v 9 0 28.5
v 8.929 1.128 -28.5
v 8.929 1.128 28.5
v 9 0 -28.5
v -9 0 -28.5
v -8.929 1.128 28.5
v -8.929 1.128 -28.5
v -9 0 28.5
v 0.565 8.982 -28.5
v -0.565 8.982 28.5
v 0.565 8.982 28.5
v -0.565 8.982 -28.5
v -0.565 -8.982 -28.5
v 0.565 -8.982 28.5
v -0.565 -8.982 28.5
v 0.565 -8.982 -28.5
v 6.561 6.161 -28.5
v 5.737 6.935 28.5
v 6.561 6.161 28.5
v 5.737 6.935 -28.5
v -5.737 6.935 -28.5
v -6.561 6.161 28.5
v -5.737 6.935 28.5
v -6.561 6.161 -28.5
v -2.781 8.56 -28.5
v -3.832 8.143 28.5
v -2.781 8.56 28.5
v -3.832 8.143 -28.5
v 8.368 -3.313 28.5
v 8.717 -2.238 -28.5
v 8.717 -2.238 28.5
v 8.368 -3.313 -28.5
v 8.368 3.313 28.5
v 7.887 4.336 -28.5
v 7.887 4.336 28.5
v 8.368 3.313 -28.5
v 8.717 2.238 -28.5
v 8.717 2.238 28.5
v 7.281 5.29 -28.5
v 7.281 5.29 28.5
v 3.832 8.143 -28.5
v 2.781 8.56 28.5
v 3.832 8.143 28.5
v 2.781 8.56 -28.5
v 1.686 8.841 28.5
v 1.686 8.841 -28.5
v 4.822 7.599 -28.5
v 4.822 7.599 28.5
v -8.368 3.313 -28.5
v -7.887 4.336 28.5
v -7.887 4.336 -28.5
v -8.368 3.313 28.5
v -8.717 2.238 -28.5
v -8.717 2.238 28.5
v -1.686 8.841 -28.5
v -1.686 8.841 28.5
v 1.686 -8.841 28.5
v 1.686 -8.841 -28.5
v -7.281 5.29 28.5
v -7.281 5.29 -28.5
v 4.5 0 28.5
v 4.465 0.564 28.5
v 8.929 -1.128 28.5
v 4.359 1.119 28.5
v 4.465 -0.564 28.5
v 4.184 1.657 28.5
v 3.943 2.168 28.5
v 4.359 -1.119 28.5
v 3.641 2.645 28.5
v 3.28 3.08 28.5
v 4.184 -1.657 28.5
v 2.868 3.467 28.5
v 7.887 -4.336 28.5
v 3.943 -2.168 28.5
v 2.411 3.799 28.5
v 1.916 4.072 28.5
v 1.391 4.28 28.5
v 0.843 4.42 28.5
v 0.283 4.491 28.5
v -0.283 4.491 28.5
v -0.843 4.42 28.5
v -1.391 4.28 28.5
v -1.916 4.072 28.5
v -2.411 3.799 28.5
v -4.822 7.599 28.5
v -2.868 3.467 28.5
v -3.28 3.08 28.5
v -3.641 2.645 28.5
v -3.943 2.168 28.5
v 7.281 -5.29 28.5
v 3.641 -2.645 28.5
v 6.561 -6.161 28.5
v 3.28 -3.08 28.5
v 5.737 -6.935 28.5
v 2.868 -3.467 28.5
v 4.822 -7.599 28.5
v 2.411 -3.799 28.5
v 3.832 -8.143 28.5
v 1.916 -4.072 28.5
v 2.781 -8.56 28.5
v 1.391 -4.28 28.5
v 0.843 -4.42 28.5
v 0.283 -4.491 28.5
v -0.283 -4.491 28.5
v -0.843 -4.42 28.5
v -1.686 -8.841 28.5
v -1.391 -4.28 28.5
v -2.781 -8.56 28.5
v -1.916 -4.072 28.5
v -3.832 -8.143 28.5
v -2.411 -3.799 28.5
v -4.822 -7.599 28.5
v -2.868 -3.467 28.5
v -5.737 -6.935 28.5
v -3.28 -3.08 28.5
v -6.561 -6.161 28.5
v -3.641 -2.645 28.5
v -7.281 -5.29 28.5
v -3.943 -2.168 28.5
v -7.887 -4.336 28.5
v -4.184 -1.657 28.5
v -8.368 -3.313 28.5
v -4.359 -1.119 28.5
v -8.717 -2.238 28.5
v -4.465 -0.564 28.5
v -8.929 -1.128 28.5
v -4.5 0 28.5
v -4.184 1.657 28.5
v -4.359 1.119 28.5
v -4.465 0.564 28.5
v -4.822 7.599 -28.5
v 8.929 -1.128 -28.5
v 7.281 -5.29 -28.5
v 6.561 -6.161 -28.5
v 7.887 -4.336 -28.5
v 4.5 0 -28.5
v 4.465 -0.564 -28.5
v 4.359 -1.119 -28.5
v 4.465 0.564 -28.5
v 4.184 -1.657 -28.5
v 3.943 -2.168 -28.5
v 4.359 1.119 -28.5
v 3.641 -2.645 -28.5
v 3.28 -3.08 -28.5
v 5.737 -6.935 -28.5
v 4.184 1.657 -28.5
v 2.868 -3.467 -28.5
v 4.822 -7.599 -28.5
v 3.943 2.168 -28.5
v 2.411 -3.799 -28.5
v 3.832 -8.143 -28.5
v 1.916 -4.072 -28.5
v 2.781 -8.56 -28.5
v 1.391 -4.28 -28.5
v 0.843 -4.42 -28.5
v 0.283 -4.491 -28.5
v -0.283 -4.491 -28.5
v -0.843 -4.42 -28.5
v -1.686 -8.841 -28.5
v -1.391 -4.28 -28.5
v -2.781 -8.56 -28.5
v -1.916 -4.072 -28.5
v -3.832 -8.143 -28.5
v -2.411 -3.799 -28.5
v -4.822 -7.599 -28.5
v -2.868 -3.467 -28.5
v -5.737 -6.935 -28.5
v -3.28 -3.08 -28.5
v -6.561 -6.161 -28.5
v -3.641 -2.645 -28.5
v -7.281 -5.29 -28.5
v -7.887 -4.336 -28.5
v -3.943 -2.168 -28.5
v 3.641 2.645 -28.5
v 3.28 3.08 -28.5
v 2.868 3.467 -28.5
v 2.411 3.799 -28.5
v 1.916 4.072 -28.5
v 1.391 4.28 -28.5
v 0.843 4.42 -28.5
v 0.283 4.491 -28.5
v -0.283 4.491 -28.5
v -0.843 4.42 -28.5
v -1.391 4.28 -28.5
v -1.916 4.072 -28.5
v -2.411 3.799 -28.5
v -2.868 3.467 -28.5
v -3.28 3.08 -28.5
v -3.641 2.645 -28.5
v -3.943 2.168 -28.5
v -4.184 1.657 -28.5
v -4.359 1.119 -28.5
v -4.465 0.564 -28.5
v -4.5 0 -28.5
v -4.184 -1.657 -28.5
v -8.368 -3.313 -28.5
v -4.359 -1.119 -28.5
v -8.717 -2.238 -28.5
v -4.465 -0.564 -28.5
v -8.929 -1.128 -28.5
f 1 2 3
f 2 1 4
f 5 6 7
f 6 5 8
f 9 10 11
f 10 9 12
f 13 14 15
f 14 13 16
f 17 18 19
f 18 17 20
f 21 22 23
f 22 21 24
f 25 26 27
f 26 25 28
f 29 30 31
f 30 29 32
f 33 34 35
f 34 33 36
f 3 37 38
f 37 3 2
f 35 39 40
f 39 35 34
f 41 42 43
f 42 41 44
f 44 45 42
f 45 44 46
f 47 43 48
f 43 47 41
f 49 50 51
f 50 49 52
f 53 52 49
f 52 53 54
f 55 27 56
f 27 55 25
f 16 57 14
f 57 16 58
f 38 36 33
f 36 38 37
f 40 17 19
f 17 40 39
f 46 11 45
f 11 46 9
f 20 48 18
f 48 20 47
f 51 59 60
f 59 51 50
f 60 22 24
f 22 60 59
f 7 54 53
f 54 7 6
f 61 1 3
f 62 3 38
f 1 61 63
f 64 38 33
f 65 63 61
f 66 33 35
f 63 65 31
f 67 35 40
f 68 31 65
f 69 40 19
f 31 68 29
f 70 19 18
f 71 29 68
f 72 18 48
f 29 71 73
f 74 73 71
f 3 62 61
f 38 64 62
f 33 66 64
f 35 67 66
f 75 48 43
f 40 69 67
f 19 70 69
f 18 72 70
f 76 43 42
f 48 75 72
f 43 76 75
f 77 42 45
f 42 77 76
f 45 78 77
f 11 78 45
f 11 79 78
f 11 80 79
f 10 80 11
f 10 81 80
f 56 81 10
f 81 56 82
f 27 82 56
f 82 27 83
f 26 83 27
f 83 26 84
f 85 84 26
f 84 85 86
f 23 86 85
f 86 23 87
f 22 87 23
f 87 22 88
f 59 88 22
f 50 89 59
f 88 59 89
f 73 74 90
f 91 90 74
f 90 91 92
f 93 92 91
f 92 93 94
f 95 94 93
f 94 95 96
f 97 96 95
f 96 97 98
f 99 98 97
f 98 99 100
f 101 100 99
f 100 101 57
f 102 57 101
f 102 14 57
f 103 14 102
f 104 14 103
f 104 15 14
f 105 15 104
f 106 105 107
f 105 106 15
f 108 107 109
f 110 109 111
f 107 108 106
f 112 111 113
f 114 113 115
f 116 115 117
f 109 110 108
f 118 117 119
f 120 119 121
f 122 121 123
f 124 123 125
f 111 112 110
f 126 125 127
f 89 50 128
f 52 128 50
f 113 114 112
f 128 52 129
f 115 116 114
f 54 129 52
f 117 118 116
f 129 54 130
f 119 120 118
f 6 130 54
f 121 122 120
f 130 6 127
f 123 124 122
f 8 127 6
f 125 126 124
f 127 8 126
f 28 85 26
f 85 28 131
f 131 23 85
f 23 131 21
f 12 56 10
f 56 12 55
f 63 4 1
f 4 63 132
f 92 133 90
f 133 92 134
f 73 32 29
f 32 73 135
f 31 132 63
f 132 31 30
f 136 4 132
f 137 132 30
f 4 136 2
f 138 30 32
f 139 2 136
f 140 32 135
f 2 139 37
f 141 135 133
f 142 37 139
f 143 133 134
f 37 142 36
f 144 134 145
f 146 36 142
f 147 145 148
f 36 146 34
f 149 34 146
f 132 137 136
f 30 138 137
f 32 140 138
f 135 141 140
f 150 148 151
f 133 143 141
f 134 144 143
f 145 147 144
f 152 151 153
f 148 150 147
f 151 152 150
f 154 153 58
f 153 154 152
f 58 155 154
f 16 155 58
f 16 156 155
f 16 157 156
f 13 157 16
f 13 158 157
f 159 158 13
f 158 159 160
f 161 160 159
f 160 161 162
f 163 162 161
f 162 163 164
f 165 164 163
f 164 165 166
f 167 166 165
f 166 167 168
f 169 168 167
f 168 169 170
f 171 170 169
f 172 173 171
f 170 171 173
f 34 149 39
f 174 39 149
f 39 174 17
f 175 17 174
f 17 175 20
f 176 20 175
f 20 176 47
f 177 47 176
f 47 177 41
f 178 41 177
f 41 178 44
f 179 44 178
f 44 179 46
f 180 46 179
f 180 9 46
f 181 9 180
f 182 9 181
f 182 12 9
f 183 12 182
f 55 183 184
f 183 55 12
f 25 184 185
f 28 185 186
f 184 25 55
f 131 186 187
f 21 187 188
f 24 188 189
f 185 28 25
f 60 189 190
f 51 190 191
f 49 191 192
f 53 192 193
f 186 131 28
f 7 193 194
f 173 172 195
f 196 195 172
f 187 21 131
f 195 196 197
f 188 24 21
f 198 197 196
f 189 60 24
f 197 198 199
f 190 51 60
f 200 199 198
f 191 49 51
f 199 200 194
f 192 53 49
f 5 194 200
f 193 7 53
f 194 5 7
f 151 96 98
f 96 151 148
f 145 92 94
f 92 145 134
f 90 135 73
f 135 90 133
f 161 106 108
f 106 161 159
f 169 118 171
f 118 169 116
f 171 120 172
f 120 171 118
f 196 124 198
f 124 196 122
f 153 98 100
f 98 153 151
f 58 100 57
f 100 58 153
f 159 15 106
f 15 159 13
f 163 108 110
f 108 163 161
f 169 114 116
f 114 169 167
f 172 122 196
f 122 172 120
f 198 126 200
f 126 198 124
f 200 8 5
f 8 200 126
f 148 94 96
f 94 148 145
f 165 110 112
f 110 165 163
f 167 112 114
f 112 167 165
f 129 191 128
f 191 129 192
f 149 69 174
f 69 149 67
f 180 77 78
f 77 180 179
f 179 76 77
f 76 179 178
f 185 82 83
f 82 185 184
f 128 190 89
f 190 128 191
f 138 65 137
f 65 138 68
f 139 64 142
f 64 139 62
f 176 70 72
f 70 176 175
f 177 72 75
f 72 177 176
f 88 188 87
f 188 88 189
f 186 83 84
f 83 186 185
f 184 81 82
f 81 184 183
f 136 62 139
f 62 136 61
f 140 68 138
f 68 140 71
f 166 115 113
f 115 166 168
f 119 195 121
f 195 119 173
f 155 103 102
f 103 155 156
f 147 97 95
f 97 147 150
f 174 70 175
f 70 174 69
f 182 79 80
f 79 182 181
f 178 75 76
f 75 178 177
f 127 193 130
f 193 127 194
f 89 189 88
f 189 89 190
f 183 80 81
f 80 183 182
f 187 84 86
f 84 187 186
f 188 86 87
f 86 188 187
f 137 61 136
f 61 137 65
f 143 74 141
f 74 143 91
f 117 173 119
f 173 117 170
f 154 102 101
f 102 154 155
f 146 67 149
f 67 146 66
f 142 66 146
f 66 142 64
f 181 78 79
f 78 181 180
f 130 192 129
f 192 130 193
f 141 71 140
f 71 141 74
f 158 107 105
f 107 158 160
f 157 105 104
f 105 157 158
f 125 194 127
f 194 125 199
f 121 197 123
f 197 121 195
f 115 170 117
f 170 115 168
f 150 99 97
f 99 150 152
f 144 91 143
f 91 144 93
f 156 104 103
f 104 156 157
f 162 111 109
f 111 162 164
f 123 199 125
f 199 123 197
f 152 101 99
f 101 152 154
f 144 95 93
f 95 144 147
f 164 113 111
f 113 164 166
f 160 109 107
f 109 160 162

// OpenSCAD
$fn = 50;


difference() {
	union() {
		translate(v = [0, 0, -28.5000000000]) {
			cylinder(h = 57, r = 9.0000000000);
		}
	}
	union() {
		translate(v = [0, 0, -100.0000000000]) {
			cylinder(h = 200, r = 4.5000000000);
		}
	}
}
